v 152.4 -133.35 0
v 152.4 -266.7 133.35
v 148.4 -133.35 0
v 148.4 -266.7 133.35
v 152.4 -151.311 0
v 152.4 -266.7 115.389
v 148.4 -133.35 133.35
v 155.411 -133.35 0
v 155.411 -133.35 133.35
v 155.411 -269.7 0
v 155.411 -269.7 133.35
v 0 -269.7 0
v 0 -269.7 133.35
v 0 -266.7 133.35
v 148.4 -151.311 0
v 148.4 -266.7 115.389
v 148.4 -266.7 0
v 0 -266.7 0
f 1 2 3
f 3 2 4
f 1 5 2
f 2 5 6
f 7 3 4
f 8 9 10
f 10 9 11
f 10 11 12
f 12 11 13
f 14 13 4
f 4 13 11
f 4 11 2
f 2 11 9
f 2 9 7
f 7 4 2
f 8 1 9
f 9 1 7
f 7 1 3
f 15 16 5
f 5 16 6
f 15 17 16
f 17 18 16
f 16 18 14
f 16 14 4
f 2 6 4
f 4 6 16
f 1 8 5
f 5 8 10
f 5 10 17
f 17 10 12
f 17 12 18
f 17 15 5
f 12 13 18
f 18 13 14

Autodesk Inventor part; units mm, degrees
ref_plane "YZ Plane" through (0, 0, 0) normal (1, 0, 0) x (0, 1, 0)
ref_plane "XZ Plane" through (0, 0, 0) normal (0, 1, 0) x (-1, 0, 0)
ref_plane "XY Plane" through (0, 0, 0) normal (0, 0, 1) x (1, 0, 0)
sketch "Sketch1" plane through (0, 0, 0) normal (0, 1, 0) x (-1, 0, 0)
  line L0 (110, -80) -> (-110, -80)
  line L1 (-110, -80) -> (-110, 80)
  line L2 (-110, 80) -> (110, 80)
  line L3 (110, 80) -> (110, -80)
  line L4 (320.2117, -53.5522) -> (168.036, -53.5522) construction
  line L5 (168.036, -53.5522) -> (168.036, 90.1689) construction
  line L6 (168.036, 90.1689) -> (320.2117, 90.1689) construction
  line L7 (320.2117, 90.1689) -> (320.2117, -53.5522) construction
  line L8 (124.3, -89.75) -> (-124.3, -89.75) construction
  line L9 (-124.3, -89.75) -> (-124.3, 89.75) construction
  line L10 (-124.3, 89.75) -> (124.3, 89.75) construction
  line L11 (124.3, 89.75) -> (124.3, -89.75) construction
  line L12 (124.3, -89.75) -> (-124.3, 89.75) construction
  line L13 (-124.3, -89.75) -> (124.3, 89.75) construction
  line L14 (-152.4, -107.95) -> (152.4, -107.95)
  line L15 (152.4, -107.95) -> (152.4, 107.95)
  line L16 (152.4, 107.95) -> (-152.4, 107.95)
  line L17 (-152.4, 107.95) -> (-152.4, -107.95)
  line L18 (-152.4, -107.95) -> (152.4, 107.95) construction
  line L19 (152.4, -107.95) -> (-152.4, 107.95) construction
  line L20 (177.8, 133.35) -> (177.8, -133.35)
  line L21 (177.8, -133.35) -> (-177.8, -133.35)
  line L22 (-177.8, -133.35) -> (-177.8, 133.35)
  line L23 (-177.8, 133.35) -> (177.8, 133.35)
  point P0 (0, 0)
  dimension "d11" = 220
  dimension "d12" = 160
  dimension "d15" = 248.6
  dimension "d16" = 179.5
  dimension "d18" = 304.8
  dimension "d19" = 215.9
  dimension "d22" = 25.4
extrude "Top" add sketch "Sketch1" along normal blind 25.4 contours L17 L16 L15 L14 | L20 L21 L22 L23
sketch "Sketch3" plane through (177.8, 0, 133.35) normal (1, 0, 0) x (0, 0, -1)
  line L0 (0, 0) -> (0, 25.4) projected
  line L1 (266.7, 0) -> (266.7, 25.4) projected
  line L2 (0, 0) -> (266.7, 0)
  line L3 (266.7, 0) -> (266.7, -266.7)
  line L4 (266.7, -266.7) -> (0, -266.7)
  line L5 (0, -266.7) -> (0, 0)
  point P0 (133.35, 0)
  dimension "d25" = 266.7
extrude "Right" add sketch "Sketch3" against normal blind 50.8
sketch "Sketch4" plane through (-177.8, 0, -133.35) normal (-1, 0, 0) x (0, 0, 1)
  line L0 (0, 0) -> (0, 25.4) projected
  line L1 (266.7, -266.7) -> (266.7, 0) projected
  line L2 (0, 0) -> (266.7, 0)
  line L3 (266.7, 0) -> (266.7, -266.7)
  line L4 (266.7, -266.7) -> (0, -266.7)
  line L5 (0, -266.7) -> (0, 0)
  point P0 (133.35, 0)
  dimension "d28" = 266.7
extrude "Left" add sketch "Sketch4" against normal blind 50.8
sketch "Sketch5" plane through (0, 0, 0) normal (1, 0, 0) x (0, 1, 0)
  line L0 (-266.7, -133.35) -> (25.4, -133.35) projected
  line L1 (-266.7, 133.35) -> (-266.7, -133.35) projected
  line L2 (0, -133.35) -> (-266.7, 133.35)
  line L3 (-266.7, 133.35) -> (-275.6803, 124.3697)
  line L4 (-275.6803, 124.3697) -> (-8.9803, -142.3303)
  line L5 (-8.9803, -142.3303) -> (0, -133.35)
  point P0 (0, 0)
  dimension "d31" = 12.7
extrude "Plexiglass Cut" cut sketch "Sketch5" along normal mid plane 304.8 contours L4 L1 L2 L0 | L0 L5 L4 | L4 L3 L1
sketch "Sketch6" plane through (-177.8, -266.7, -133.35) normal (0, -1, 0) x (1, 0, 0)
  line L0 (0, 0) -> (0, 266.7) projected
  line L1 (355.6, 0) -> (0, 0) projected
  line L2 (0, 266.7) -> (355.6, 266.7)
  line L3 (355.6, 266.7) -> (355.6, 0)
  line L4 (355.6, 0) -> (0, 0)
  line L5 (0, 0) -> (0, 266.7)
  point P0 (177.8, 133.35)
extrude "Bottom" add sketch "Sketch6" along normal blind 25.4
sketch "Sketch9" plane through (0, 25.4, 0) normal (0, 1, 0) x (1, 0, 0)
  line L0 (177.8, -133.35) -> (127, -133.35) projected
  line L1 (177.8, 133.35) -> (-177.8, 133.35) projected
  line L2 (177.8, -133.35) -> (-177.8, -133.35)
  line L3 (-177.8, -133.35) -> (-177.8, 133.35)
  line L4 (-177.8, 133.35) -> (177.8, 133.35)
  line L5 (177.8, 133.35) -> (177.8, -133.35)
  point P0 (0, 0)
extrude "Top Flattening" cut sketch "Sketch9" against normal blind 22.4
sketch "Sketch10" plane through (0, 3, 0) normal (0, 1, 0) x (1, 0, 0)
  line L0 (-177.8, -133.35) -> (-177.8, 133.35) projected
  line L1 (-155.4106, 133.35) -> (-177.8, 133.35)
  line L2 (-177.8, 133.35) -> (-177.8, -133.35)
  line L3 (-177.8, -133.35) -> (-155.4106, -133.35)
  line L4 (-155.4106, -133.35) -> (-155.4106, 133.35)
  line L5 (177.8, 133.35) -> (177.8, -133.35)
  line L6 (177.8, -133.35) -> (155.4106, -133.35)
  line L7 (155.4106, -133.35) -> (155.4106, 133.35)
  line L8 (155.4106, 133.35) -> (177.8, 133.35)
  line L9 (152.4, -115.3895) -> (152.4, 133.35) projected
  point P0 (0, 0)
  point P1 (-177.8, 0)
  dimension "d48" = 22.3894
  dimension "d49" = 22.3894
extrude "Outer Side Flattening" cut sketch "Sketch10" against normal through all
sketch "Sketch11" plane through (-177.8, -292.1, -133.35) normal (0, -1, 0) x (1, 0, 0)
  line L0 (22.3894, 0) -> (333.2106, 0) projected
  line L1 (333.2106, 0) -> (22.3894, 0)
  line L2 (22.3894, 0) -> (22.3894, 266.7)
  line L3 (22.3894, 266.7) -> (333.2106, 266.7)
  line L4 (333.2106, 266.7) -> (333.2106, 0)
  point P0 (177.8, 133.35)
extrude "Bottom Flattening" cut sketch "Sketch11" against normal blind 22.4
sketch "Sketch12" plane through (155.4106, 3, -133.35) normal (0, 0, -1) x (-1, 0, 0)
  line L0 (155.4106, -3) -> (155.4106, -269.7) construction
  line L1 (7.0106, -269.7) -> (7.0106, -3)
  line L2 (7.0106, -3) -> (303.8106, -3)
  line L3 (303.8106, -3) -> (303.8106, -269.7)
  line L4 (303.8106, -269.7) -> (7.0106, -269.7)
  line L5 (7.0106, -269.7) -> (303.8106, -3) construction
  line L6 (7.0106, -3) -> (303.8106, -269.7) construction
  point P0 (155.4106, -136.35)
  point P1 (155.4106, -3)
  dimension "d54" = 296.8
extrude "Inner Flattening" cut sketch "Sketch12" against normal through all
sketch "Sketch13" plane through (-155.4106, 3, 133.35) normal (0, 0, 1) x (1, 0, 0)
  line L0 (310.8211, -272.7) -> (310.8211, 0) projected
  line L1 (0, -272.7) -> (0, 0) projected
  line L2 (310.8211, -136.35) -> (0, -136.35)
  line L3 (0, -136.35) -> (0, 0)
  line L4 (0, 0) -> (310.8211, 0)
  line L5 (310.8211, 0) -> (310.8211, -136.35)
  point P0 (155.4106, -3)
  point P1 (310.8211, 0)
  point P2 (0, -136.35)
extrude "Top Cut" cut sketch "Sketch13" against normal through all
sketch "Sketch14" plane through (-155.4106, -133.35, 133.35) normal (0, 1, 0) x (1, 0, 0)
  line L0 (310.8212, 0) -> (303.8106, 0) projected
  line L1 (155.4106, 133.35) -> (310.8212, 133.35)
  line L2 (310.8212, 133.35) -> (310.8212, 0)
  line L3 (310.8212, 0) -> (155.4106, 0)
  line L4 (155.4106, 0) -> (155.4106, 133.35)
  line L5 (310.8211, 266.7) -> (0, 266.7) projected
  line L6 (310.8212, 0) -> (0, 0)
  line L7 (0, 0) -> (0, 266.7)
  line L8 (0, 266.7) -> (310.8212, 266.7)
  line L9 (310.8212, 266.7) -> (310.8212, 0)
extrude "Quarter Cut" cut sketch "Sketch14" against normal through all contours L1 L4 L6 L7 L5 L9
properties part number "Apple iPad 2022 Hologram"
